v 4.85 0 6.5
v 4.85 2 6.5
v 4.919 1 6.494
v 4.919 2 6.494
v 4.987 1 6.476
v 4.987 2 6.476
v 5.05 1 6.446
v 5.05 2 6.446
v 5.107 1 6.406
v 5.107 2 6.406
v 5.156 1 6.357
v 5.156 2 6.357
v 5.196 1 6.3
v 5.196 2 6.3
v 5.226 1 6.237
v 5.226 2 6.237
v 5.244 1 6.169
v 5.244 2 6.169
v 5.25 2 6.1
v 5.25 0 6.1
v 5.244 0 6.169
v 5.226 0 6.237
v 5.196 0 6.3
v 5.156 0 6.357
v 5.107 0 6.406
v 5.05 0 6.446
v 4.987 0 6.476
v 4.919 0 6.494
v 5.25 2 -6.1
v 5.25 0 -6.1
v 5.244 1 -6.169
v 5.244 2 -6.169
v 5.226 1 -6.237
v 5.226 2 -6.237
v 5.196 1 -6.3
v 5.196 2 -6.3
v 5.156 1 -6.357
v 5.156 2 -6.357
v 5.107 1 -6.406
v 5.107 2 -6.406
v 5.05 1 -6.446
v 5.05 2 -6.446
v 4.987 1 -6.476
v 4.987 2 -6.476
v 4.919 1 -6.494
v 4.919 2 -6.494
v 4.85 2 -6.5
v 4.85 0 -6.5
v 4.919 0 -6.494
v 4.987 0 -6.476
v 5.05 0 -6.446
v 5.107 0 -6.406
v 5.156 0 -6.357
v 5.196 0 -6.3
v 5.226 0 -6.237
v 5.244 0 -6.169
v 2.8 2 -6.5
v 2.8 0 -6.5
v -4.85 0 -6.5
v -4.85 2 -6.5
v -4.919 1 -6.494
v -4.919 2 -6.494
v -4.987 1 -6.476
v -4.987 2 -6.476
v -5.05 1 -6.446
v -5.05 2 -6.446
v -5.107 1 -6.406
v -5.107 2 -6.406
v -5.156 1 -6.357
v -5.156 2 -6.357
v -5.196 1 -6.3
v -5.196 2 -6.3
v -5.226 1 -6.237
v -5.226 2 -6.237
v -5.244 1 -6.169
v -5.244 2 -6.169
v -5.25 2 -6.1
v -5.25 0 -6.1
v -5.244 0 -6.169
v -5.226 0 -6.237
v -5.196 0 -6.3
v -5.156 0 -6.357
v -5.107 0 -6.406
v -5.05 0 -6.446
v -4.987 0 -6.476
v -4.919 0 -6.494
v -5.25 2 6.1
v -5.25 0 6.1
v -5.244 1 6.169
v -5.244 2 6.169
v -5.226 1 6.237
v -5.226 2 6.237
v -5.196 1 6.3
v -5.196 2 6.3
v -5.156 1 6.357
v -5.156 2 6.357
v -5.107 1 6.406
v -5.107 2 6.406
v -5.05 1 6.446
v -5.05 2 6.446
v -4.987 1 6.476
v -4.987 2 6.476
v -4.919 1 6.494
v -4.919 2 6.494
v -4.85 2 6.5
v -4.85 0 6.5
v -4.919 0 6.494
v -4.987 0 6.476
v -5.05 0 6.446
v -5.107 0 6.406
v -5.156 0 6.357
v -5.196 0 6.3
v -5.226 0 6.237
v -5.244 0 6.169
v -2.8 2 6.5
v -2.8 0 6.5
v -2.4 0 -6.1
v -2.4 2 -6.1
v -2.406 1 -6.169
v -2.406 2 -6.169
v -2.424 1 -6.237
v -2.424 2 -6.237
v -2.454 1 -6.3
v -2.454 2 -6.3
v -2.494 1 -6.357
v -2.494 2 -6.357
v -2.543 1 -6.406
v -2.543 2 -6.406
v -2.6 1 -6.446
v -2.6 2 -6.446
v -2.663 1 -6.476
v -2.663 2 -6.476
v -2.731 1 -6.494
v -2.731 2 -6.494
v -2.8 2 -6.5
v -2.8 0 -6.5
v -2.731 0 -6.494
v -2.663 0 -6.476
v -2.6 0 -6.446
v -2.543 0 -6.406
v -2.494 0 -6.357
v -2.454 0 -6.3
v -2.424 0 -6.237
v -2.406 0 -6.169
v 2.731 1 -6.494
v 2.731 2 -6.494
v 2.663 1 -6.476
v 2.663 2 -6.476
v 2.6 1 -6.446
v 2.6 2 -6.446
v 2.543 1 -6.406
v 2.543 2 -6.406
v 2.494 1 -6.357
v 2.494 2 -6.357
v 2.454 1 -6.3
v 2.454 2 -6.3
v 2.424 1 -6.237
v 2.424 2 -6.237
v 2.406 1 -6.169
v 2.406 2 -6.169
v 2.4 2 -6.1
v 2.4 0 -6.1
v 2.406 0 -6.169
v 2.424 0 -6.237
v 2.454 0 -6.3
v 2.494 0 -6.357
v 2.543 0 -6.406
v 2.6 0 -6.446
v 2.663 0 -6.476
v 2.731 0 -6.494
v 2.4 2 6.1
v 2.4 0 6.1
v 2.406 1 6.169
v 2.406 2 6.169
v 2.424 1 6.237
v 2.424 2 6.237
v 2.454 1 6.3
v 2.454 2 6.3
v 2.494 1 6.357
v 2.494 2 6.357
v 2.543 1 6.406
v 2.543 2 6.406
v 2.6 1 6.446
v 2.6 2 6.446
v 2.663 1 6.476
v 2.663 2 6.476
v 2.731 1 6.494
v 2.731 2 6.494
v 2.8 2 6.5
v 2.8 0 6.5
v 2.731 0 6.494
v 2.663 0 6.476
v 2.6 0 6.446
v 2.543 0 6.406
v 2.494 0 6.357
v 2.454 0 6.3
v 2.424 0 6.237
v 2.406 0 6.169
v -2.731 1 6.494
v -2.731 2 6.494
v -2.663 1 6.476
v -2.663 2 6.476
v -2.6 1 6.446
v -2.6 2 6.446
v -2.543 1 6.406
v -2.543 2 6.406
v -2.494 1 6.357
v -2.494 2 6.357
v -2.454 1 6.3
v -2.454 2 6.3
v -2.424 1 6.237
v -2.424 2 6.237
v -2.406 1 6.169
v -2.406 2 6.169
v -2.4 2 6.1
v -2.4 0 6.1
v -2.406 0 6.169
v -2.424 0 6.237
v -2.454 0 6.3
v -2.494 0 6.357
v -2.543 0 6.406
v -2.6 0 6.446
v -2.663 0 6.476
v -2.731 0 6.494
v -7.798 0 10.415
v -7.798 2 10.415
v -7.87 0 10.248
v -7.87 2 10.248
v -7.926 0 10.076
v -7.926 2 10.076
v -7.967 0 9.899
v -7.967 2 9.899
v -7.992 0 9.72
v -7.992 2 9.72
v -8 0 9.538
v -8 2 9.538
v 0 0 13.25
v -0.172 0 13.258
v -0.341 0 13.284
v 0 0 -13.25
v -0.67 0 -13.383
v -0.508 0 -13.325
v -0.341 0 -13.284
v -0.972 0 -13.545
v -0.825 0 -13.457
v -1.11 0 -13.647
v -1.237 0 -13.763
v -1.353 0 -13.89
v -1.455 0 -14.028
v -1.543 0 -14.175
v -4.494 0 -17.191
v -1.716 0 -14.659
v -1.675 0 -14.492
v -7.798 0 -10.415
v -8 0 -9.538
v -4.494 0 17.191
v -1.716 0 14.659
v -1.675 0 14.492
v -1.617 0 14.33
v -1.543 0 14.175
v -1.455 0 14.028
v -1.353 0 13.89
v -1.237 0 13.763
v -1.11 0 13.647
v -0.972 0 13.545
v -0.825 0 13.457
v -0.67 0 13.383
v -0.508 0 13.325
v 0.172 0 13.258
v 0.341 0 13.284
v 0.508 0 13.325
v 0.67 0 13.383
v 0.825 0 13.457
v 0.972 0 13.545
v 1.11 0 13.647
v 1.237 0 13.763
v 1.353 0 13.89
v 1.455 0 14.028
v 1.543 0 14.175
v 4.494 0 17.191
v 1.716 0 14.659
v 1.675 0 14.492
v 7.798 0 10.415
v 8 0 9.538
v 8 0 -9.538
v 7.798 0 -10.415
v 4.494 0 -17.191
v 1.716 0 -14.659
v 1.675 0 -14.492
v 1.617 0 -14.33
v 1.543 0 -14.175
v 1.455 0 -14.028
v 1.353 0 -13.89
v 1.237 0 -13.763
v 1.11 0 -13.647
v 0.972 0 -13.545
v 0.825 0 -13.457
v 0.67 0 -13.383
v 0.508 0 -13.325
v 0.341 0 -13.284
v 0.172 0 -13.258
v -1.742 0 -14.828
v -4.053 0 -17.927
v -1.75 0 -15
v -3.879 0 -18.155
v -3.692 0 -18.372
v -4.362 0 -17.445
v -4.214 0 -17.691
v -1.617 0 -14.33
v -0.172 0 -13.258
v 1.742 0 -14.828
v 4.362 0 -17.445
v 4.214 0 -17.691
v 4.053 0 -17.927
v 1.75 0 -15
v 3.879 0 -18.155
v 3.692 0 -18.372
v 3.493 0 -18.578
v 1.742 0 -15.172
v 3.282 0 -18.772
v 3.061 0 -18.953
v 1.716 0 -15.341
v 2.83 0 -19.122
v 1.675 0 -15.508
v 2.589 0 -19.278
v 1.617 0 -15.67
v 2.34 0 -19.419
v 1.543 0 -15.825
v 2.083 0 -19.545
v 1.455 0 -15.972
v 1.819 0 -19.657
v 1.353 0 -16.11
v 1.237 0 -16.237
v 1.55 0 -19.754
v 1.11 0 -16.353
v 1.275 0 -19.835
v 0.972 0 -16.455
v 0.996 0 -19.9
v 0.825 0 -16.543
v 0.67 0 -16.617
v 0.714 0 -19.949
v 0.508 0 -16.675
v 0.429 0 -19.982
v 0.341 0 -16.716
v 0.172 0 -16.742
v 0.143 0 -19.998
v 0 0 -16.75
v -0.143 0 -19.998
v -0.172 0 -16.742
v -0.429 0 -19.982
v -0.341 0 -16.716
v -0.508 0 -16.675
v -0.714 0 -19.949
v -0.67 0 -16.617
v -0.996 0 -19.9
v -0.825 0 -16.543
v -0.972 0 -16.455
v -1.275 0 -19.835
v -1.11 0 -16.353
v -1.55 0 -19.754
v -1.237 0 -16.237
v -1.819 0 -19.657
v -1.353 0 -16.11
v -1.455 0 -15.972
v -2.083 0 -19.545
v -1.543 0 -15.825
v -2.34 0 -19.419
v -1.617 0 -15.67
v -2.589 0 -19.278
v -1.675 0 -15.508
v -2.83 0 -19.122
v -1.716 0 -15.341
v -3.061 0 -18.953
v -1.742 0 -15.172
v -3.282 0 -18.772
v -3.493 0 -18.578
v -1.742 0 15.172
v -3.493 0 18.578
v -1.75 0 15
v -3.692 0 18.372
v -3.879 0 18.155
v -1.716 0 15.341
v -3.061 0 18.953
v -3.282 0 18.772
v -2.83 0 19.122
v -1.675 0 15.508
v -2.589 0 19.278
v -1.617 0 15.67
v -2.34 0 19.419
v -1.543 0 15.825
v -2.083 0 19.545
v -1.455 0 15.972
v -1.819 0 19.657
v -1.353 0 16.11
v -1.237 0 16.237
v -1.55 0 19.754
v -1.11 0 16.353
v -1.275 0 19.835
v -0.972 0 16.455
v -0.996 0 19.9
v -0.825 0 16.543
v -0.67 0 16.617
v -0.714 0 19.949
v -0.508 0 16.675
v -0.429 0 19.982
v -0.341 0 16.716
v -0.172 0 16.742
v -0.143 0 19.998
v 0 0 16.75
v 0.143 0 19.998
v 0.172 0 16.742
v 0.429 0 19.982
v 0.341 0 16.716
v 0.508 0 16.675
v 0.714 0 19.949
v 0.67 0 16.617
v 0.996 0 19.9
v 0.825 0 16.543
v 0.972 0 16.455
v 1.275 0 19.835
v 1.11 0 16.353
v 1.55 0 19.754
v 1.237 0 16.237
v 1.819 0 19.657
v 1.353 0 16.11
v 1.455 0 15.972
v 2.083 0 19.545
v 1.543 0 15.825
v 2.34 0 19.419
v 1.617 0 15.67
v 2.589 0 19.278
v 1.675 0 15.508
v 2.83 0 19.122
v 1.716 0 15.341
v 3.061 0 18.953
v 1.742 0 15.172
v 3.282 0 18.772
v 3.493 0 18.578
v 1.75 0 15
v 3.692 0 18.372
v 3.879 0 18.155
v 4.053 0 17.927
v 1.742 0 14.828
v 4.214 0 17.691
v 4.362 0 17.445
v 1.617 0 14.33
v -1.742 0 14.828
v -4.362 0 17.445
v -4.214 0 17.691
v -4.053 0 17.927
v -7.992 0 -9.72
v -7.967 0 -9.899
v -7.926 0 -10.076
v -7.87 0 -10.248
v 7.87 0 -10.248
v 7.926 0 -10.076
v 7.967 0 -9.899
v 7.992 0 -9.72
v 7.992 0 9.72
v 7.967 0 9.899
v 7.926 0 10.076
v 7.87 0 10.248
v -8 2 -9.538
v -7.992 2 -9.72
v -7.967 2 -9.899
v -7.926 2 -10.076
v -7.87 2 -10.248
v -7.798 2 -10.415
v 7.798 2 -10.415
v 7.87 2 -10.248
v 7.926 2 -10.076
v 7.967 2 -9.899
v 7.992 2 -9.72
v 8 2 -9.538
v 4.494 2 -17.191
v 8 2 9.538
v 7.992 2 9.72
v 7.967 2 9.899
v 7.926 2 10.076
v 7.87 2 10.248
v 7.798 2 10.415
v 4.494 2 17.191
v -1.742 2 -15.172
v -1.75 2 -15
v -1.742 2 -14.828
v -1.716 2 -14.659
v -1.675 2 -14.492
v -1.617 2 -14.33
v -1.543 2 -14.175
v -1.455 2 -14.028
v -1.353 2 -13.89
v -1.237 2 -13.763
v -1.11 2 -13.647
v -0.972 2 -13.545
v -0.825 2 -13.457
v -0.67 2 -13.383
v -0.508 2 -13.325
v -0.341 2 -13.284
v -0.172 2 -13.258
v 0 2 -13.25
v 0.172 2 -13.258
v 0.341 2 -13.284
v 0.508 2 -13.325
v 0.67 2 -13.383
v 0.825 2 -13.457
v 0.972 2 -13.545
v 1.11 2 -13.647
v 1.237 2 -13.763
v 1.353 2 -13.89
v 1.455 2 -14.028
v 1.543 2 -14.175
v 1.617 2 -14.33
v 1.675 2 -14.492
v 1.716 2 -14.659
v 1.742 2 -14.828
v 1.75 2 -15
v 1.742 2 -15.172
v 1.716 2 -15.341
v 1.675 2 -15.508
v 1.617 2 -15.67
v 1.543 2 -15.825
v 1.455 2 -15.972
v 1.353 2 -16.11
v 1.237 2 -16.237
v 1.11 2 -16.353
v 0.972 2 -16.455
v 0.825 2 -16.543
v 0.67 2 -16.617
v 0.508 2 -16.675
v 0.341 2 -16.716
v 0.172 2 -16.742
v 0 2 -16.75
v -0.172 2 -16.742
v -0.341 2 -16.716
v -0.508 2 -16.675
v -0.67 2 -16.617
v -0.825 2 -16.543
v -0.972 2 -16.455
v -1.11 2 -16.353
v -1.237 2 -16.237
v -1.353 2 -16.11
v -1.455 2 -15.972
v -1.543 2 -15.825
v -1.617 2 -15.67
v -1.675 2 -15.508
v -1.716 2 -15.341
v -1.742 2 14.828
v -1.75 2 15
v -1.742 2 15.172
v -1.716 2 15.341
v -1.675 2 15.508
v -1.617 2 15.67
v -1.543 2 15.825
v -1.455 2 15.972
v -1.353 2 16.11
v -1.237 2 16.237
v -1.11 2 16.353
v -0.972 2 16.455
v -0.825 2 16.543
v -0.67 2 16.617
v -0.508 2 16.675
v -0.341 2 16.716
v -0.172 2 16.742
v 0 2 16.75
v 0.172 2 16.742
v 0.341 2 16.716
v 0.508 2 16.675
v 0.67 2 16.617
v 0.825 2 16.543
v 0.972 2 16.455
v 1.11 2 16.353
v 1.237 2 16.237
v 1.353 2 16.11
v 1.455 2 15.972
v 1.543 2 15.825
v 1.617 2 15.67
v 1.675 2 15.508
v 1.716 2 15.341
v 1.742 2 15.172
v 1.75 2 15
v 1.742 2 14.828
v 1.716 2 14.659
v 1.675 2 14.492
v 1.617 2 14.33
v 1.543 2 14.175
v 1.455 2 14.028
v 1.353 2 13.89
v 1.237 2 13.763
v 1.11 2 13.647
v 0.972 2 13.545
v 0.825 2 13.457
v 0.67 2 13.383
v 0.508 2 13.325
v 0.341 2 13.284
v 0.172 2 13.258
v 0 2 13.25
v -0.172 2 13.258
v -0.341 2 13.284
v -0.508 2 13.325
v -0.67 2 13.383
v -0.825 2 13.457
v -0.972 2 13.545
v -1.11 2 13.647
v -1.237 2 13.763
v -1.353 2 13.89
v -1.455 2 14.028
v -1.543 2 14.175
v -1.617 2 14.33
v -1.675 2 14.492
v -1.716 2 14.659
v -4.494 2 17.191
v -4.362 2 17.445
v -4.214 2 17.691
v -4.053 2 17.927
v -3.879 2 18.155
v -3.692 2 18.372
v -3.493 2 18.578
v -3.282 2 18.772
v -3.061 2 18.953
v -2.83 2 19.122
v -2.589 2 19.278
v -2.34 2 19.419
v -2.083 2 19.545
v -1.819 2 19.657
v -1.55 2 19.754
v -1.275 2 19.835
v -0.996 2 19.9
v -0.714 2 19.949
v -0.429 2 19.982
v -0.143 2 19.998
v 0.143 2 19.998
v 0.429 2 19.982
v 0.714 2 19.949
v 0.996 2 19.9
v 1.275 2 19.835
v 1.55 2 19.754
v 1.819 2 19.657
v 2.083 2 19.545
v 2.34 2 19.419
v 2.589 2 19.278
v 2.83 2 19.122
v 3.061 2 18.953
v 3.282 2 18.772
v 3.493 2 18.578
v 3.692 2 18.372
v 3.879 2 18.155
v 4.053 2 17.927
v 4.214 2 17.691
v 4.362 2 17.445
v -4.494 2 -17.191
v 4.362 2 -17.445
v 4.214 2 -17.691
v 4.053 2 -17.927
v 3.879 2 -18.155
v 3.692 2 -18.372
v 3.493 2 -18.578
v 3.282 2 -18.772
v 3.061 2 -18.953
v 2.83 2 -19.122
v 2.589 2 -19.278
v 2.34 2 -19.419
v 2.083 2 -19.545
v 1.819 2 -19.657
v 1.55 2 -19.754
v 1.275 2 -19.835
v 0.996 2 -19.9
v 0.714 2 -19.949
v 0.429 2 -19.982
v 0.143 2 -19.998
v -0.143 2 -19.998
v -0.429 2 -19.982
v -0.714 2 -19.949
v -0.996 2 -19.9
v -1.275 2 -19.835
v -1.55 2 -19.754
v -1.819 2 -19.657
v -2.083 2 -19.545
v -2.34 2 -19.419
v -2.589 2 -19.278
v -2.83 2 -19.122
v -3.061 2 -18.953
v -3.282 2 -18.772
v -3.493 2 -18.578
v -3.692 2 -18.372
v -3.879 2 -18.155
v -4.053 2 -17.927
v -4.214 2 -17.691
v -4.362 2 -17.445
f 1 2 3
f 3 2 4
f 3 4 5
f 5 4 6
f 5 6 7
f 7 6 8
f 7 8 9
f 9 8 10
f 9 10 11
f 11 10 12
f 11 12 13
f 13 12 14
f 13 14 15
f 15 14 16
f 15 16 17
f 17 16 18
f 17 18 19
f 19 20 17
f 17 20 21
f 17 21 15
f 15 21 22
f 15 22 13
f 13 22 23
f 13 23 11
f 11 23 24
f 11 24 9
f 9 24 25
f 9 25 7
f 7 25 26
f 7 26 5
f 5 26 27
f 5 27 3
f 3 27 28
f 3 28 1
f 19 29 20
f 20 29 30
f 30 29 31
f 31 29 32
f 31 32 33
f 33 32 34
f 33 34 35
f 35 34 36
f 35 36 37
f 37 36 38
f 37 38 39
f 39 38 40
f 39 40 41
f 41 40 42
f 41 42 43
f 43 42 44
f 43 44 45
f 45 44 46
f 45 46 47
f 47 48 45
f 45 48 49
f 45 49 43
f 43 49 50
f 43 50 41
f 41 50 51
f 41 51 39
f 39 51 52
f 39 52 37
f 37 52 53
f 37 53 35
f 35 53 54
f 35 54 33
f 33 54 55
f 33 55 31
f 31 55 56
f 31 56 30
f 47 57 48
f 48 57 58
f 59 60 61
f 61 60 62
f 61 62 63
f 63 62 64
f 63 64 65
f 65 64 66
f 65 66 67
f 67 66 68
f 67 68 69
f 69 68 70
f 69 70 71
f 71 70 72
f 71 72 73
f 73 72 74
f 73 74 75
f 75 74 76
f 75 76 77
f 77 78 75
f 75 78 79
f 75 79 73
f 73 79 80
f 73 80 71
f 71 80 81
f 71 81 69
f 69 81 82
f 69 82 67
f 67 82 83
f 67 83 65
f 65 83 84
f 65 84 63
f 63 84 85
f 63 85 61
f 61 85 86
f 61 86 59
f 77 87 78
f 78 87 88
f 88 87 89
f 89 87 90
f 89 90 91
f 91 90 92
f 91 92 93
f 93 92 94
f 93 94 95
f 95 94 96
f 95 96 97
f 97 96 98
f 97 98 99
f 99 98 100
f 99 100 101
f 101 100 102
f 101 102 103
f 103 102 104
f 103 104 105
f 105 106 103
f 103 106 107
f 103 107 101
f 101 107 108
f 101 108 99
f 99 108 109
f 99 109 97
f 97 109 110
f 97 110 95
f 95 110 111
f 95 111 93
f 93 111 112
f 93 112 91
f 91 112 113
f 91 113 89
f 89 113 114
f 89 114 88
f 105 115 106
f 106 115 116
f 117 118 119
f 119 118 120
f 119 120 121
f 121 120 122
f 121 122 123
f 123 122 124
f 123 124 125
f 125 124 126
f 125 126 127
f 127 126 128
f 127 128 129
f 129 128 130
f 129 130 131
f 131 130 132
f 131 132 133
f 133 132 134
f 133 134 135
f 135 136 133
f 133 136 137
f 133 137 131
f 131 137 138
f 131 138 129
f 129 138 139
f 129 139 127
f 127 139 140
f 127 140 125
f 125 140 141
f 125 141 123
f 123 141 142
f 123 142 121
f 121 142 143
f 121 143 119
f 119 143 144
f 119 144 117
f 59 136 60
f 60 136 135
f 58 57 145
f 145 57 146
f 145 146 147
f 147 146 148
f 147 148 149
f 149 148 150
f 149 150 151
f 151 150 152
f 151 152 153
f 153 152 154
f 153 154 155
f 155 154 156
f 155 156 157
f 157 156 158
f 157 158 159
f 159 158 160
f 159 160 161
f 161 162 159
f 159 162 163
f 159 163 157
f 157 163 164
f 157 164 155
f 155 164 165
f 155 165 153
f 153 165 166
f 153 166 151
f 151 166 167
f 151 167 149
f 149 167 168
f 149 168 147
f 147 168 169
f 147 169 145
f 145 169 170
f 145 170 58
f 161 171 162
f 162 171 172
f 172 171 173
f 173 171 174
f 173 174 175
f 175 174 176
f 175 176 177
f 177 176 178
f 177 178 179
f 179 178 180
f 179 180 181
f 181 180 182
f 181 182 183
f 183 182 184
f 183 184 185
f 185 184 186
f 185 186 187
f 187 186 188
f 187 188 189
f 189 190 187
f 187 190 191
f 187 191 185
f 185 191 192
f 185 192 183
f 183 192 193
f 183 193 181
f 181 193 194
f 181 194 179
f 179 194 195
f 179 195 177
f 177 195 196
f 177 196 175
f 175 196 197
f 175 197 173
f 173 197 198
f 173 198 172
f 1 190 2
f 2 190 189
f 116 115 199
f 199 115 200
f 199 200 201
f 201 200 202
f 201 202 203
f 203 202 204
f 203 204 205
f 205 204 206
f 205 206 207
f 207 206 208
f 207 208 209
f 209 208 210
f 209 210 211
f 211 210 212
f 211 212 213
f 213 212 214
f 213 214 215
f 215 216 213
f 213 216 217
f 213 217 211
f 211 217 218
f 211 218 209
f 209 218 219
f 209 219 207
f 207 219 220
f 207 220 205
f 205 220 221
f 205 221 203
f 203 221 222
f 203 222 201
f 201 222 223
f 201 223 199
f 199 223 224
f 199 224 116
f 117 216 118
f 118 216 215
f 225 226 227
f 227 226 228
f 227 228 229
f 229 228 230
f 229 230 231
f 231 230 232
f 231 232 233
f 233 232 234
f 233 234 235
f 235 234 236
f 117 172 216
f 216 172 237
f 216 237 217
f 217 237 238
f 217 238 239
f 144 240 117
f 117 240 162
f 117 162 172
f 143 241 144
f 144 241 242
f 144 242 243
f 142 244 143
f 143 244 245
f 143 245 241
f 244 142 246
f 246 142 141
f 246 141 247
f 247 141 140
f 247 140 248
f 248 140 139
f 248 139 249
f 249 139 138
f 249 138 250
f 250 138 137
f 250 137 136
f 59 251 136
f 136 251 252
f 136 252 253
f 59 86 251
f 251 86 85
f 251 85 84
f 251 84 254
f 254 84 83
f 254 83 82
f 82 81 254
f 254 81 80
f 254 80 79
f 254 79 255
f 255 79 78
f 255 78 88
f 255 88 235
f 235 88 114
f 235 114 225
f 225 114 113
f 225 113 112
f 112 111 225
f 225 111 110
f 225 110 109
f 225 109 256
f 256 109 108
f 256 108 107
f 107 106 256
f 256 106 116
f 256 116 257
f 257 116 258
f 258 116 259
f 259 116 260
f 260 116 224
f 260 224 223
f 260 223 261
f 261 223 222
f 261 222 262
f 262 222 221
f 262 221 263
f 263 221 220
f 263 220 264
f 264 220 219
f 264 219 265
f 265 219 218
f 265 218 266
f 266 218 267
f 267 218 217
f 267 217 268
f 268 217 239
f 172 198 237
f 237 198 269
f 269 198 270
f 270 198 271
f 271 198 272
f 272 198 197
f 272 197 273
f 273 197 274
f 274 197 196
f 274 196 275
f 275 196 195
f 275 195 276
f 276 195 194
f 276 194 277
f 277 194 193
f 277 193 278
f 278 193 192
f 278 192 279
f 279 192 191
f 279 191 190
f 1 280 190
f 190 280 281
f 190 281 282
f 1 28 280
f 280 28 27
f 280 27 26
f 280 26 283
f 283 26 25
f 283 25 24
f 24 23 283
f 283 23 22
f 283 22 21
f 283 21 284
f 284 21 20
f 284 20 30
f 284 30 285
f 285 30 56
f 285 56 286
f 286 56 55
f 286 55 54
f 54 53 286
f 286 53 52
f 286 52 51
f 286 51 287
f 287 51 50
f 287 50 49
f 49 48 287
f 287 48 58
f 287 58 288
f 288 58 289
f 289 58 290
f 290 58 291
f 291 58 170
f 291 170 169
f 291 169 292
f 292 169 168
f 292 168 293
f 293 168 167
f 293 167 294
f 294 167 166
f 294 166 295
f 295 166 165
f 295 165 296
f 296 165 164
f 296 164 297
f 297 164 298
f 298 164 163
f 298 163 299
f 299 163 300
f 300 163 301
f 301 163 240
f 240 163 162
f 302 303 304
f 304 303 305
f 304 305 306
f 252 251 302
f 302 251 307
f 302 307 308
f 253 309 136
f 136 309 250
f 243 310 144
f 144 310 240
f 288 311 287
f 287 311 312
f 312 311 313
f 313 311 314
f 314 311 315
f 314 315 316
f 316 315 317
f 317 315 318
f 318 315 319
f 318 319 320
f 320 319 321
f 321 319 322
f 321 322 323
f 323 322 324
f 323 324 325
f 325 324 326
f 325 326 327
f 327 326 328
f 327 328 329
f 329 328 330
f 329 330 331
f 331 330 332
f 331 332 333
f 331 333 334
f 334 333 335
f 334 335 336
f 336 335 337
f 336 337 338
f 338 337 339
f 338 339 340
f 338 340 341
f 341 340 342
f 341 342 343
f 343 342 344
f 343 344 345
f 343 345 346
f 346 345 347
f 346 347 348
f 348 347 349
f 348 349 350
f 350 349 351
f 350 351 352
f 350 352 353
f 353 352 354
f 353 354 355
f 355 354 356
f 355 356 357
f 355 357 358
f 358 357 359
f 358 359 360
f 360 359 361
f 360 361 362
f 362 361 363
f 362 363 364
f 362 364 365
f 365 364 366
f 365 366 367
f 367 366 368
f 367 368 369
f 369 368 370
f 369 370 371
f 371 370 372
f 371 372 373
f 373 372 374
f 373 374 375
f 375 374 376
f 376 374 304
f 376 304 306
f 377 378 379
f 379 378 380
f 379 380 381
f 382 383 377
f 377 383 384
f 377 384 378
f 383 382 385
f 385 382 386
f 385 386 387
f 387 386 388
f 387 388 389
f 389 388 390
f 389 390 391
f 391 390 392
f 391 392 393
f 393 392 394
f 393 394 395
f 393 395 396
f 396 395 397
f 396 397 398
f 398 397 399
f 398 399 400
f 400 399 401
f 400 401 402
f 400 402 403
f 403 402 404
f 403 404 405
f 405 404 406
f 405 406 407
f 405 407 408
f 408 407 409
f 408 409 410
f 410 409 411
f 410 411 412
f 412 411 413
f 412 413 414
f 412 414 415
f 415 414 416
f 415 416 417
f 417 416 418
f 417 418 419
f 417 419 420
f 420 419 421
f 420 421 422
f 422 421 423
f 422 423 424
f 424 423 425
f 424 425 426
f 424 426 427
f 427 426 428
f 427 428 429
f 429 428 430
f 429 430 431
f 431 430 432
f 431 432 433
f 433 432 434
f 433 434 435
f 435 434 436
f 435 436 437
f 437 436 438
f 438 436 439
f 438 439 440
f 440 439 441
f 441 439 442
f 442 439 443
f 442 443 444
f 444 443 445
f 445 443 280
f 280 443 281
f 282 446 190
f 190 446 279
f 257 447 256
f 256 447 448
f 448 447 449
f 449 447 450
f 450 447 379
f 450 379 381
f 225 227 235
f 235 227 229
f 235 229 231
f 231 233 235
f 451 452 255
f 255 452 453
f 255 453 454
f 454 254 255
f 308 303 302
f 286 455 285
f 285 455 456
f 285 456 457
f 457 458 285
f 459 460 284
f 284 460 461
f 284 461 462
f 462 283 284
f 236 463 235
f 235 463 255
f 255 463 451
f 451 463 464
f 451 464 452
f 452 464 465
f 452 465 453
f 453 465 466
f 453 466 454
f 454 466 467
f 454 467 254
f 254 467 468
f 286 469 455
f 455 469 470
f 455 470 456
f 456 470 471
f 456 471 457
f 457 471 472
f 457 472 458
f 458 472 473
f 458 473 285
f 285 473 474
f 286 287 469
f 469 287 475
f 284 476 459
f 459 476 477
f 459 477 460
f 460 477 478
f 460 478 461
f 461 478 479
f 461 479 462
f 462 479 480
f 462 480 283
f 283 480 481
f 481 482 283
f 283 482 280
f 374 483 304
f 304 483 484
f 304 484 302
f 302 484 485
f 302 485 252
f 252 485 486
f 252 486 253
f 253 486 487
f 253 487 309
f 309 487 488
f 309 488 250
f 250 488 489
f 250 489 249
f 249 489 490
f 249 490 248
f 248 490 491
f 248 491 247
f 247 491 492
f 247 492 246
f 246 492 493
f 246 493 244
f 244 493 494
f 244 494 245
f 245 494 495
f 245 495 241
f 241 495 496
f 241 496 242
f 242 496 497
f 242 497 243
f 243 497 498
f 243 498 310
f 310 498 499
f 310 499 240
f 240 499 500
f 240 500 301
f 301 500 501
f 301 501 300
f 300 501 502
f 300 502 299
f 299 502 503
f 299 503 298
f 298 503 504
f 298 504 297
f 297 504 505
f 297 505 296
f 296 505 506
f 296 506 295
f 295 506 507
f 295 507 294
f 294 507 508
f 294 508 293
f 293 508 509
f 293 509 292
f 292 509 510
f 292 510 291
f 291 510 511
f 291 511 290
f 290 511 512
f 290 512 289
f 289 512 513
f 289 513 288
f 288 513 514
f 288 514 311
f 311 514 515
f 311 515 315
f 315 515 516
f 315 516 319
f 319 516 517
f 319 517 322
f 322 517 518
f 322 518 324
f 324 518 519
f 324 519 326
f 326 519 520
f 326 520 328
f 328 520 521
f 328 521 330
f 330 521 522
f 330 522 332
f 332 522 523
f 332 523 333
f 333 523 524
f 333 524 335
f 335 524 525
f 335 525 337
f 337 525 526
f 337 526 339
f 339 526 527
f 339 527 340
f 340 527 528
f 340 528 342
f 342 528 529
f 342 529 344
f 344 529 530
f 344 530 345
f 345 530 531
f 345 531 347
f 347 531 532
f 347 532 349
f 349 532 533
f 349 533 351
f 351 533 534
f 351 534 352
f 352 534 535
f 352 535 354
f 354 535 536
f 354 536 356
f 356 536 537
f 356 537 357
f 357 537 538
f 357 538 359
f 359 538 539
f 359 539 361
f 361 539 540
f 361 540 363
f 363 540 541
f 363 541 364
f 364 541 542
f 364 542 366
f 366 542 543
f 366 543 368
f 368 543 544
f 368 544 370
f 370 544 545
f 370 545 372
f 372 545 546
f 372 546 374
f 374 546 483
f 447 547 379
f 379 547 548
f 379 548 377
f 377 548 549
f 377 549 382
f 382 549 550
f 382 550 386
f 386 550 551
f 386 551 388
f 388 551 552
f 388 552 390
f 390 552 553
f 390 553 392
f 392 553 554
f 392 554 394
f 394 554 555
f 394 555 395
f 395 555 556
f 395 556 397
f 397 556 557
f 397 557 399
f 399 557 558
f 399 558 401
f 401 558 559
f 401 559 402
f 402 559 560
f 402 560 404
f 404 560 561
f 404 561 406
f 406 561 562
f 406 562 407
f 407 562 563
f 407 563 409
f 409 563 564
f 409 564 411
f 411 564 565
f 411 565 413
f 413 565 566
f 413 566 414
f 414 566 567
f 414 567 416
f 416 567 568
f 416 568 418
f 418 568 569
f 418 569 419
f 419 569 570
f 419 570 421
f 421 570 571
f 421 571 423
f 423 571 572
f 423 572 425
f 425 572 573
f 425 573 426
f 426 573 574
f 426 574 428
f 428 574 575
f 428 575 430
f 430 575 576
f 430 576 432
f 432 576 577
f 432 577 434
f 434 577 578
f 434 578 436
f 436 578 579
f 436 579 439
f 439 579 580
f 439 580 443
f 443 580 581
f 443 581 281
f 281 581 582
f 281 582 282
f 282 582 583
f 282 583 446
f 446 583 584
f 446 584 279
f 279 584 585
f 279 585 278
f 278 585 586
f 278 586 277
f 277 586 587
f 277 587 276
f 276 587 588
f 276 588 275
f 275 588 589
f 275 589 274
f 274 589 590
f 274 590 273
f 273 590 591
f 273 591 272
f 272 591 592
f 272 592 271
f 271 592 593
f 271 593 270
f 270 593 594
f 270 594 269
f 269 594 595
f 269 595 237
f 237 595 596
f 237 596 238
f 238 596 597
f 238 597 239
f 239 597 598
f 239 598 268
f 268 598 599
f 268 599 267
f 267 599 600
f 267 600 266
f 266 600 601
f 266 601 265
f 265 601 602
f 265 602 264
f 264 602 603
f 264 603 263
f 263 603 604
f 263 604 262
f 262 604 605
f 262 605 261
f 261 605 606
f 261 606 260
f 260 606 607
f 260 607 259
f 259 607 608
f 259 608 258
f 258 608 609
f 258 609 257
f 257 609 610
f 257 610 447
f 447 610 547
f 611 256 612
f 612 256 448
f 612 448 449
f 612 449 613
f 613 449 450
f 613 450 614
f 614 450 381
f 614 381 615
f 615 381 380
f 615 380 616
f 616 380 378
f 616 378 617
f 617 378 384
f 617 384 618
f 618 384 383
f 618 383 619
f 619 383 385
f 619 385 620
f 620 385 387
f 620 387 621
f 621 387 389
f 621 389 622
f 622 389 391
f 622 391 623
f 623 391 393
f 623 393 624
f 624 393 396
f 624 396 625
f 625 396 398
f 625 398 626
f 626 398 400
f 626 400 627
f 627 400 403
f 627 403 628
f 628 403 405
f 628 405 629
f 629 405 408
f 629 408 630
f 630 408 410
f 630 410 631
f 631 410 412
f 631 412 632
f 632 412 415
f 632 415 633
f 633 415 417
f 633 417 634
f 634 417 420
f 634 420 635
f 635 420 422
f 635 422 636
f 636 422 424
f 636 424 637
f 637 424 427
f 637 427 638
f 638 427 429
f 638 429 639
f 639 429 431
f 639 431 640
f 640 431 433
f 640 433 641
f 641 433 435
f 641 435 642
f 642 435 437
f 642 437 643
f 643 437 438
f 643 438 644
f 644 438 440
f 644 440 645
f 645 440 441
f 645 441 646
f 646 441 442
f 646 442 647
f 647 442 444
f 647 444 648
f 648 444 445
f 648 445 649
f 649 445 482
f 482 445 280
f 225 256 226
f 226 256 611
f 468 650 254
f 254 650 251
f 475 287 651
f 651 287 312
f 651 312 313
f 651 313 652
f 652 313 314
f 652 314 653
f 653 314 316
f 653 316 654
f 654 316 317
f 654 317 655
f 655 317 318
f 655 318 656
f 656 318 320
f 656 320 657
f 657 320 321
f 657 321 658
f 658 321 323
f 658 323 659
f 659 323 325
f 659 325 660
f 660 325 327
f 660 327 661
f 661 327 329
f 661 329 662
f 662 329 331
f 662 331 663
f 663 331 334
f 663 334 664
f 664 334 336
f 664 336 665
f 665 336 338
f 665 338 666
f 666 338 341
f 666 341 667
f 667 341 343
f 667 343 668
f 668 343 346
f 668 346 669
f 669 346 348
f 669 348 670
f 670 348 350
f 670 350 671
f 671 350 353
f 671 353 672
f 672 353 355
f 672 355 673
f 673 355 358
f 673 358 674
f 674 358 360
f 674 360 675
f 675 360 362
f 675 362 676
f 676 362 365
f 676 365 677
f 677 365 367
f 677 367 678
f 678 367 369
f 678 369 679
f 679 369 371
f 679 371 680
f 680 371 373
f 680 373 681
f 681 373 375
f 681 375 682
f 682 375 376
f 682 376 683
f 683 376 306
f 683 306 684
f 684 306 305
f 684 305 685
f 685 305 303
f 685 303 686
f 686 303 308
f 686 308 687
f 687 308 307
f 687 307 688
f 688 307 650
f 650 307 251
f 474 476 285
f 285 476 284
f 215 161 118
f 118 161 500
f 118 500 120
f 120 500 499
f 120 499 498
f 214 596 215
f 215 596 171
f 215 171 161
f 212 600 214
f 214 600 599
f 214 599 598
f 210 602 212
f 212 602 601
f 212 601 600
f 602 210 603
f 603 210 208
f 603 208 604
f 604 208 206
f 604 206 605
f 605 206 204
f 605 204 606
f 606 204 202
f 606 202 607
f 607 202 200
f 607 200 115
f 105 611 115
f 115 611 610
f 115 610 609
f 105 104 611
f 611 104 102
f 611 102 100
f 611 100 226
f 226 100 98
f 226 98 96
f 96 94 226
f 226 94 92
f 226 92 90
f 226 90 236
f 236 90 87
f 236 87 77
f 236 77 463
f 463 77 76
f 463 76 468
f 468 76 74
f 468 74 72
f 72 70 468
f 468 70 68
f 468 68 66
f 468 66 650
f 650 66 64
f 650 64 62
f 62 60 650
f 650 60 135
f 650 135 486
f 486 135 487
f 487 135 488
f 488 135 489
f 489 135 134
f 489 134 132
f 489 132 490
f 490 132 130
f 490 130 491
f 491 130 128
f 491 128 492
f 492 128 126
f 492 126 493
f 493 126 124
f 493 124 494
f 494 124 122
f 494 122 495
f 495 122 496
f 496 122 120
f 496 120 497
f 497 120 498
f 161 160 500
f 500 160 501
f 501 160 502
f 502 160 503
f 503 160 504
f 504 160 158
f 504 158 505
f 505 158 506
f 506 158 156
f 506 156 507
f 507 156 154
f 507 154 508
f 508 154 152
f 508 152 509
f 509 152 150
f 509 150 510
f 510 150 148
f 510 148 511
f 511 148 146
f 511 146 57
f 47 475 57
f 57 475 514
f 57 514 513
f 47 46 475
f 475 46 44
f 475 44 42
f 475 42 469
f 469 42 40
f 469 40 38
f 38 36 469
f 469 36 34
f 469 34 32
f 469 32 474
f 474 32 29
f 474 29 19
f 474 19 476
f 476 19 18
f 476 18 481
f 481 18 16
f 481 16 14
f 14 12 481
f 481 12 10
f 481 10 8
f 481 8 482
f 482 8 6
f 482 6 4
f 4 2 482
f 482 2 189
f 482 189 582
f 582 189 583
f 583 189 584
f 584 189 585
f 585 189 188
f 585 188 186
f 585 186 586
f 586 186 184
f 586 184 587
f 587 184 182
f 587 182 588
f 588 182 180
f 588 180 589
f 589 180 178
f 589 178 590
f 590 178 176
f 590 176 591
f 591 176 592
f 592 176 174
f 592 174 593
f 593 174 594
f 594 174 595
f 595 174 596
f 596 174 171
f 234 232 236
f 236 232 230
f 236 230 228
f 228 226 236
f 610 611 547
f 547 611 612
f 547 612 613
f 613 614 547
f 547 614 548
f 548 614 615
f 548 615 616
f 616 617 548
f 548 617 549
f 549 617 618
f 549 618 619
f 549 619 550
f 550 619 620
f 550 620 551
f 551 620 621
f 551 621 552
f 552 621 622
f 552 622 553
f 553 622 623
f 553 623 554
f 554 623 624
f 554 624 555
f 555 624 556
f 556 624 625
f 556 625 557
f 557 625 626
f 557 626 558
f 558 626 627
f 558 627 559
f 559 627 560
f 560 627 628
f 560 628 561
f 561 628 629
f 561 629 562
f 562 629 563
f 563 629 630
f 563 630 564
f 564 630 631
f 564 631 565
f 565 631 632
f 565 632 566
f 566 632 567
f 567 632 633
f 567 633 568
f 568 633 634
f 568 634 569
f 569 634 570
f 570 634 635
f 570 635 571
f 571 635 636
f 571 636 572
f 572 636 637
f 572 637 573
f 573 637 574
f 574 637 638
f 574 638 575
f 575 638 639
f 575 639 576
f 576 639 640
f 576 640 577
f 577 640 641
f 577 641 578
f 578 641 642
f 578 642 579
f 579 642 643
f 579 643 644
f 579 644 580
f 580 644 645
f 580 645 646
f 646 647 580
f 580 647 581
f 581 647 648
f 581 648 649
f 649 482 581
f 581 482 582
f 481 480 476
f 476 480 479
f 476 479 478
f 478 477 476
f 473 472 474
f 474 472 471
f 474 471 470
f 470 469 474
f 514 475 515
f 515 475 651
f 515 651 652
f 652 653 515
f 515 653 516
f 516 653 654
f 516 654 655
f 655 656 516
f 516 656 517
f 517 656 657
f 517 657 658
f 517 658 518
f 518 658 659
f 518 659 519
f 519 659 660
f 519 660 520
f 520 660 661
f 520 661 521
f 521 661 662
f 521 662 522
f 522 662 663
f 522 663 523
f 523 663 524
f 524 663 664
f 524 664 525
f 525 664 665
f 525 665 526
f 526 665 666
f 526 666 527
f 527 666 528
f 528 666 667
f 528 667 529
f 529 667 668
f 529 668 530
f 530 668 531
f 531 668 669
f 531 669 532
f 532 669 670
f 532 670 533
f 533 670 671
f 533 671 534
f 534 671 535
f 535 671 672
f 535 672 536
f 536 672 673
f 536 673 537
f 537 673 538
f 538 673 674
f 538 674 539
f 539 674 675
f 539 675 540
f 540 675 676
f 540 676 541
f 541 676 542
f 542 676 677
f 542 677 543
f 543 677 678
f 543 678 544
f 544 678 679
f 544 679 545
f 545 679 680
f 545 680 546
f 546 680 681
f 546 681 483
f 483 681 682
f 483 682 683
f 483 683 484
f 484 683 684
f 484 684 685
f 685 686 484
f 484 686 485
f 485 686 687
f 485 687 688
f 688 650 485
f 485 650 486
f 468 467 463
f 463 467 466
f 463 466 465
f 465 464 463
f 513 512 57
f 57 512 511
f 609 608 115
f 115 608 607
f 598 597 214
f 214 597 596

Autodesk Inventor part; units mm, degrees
ref_plane "YZ Plane" through (0, 0, 0) normal (1, 0, 0) x (0, 1, 0)
ref_plane "XZ Plane" through (0, 0, 0) normal (0, 1, 0) x (-1, 0, 0)
ref_plane "XY Plane" through (0, 0, 0) normal (0, 0, 1) x (1, 0, 0)
sketch "スケッチ1" plane through (0, 0, 0) normal (0, 1, 0) x (-1, 0, 0)
  line L0 (-8, 10) -> (8, 10)
  line L1 (8, 10) -> (8, -10)
  line L2 (8, -10) -> (-8, -10)
  line L3 (-8, -10) -> (-8, 10)
  line L4 (-8, 10) -> (8, -10) construction
  line L5 (8, 10) -> (-8, -10) construction
  circle A0 centre (0, 15) radius 5
  circle A1 centre (0, -15) radius 5
  line L6 (4.4944, 17.191) -> (8, 10)
  line L7 (-8, 10) -> (-4.4944, 17.191)
  line L8 (4.4944, -17.191) -> (8, -10)
  line L9 (-8, -10) -> (-4.4944, -17.191)
  point P0 (0, 0)
  dimension "d0" = 16
  dimension "d1" = 20
  dimension "d2" = 10
  dimension "d3" = 10
extrude "押し出し1" add sketch "スケッチ1" along normal blind 2
sketch "スケッチ4" plane through (0, 2, 0) normal (0, 1, 0) x (1, 0, 0)
  arc A0 (-4.4944, -17.191) -> (4.4944, -17.191) centre (0, -15) ccw projected
  arc A1 (4.4944, 17.191) -> (-4.4944, 17.191) centre (0, 15) ccw projected
  point P0 (0, 0)
hole "穴1" at (0, 2, 15) at (0, 2, -15) direction (0, -1, 0) diameter 3.5 end through all
fillet "フィレット1" radius 2 4 edges at (8, 1, 10) (8, 1, -10) (-8, 1, -10) (-8, 1, 10)
sketch "スケッチ5" plane through (0, 2, 0) normal (0, 1, 0) x (1, 0, 0)
  line L0 (8, -9.5385) -> (8, 9.5385) projected
  line L1 (-8, -6.5) -> (8, -6.5)
  line L2 (8, -6.5) -> (8, 6.5)
  line L3 (8, 6.5) -> (-8, 6.5)
  line L4 (-8, 6.5) -> (-8, -6.5)
  line L5 (-8, -6.5) -> (8, 6.5) construction
  line L6 (8, -6.5) -> (-8, 6.5) construction
  line L7 (-2.4, -6.5) -> (2.4, -6.5)
  line L8 (2.4, -6.5) -> (2.4, 6.5)
  line L9 (2.4, 6.5) -> (-2.4, 6.5)
  line L10 (-2.4, 6.5) -> (-2.4, -6.5)
  line L11 (-2.4, -6.5) -> (2.4, 6.5) construction
  line L12 (2.4, -6.5) -> (-2.4, 6.5) construction
  line L13 (-8, 9.5385) -> (-8, -9.5385) projected
  line L14 (5.25, -6.5) -> (-5.25, -6.5)
  line L15 (-5.25, -6.5) -> (-5.25, 6.5)
  line L16 (-5.25, 6.5) -> (5.25, 6.5)
  line L17 (5.25, 6.5) -> (5.25, -6.5)
  line L18 (5.25, -6.5) -> (-5.25, 6.5) construction
  line L19 (-5.25, -6.5) -> (5.25, 6.5) construction
  point P0 (0, 0)
  dimension "d28" = 13
  dimension "d29" = 4.8
  dimension "d33" = 10.5
extrude "押し出し4" cut sketch "スケッチ5" against normal through all contours L1 L8 L3 L17 | L1 L15 L3 L10
fillet "フィレット2" radius 0.4 8 edges at (-2.4, 1, 6.5) (2.4, 1, 6.5) (2.4, 1, -6.5) (-2.4, 1, -6.5) (-5.25, 1, 6.5) (-5.25, 1, -6.5) (5.25, 1, -6.5) (5.25, 1, 6.5)
equation "\"d3\" = d2"
properties part number "3D_bno055_bottom_3D プリント"
